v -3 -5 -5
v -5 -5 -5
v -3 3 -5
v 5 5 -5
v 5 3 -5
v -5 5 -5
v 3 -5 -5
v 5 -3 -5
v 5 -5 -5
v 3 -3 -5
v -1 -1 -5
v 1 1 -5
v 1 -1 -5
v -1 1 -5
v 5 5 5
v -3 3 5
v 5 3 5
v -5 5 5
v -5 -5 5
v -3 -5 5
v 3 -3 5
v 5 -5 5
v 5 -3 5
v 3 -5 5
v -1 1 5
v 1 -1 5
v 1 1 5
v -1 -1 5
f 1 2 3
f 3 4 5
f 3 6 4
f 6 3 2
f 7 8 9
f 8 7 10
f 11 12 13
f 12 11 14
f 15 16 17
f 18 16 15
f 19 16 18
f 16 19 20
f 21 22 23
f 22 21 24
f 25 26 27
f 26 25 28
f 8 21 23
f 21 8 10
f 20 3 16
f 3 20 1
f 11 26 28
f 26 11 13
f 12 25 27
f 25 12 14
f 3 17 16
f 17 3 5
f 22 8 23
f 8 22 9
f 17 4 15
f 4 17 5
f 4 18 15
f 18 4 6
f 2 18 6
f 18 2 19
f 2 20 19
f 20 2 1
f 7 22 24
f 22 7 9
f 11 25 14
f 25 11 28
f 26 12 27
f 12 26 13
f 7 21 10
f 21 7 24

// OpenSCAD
// Generated by SolidPython 1.1.3 on 2025-02-20 04:04:11
$fn=50;


intersection() {
	translate(v = [-5.0000000000, -5.0000000000, -5.0000000000]) {
		linear_extrude(height = 10) {
			polygon(points = [[0, 0], [10, 0], [10, 2.0000000000], [2.0000000000, 2.0000000000], [2.0000000000, 4.0000000000], [7.5000000000, 4.0000000000], [7.5000000000, 6.0000000000], [2.0000000000, 6.0000000000], [2.0000000000, 8.0000000000], [10, 8.0000000000], [10, 10], [0, 10]]);
		}
	}
	rotate(a = -90, v = [0, 0, 1]) {
		translate(v = [-5.0000000000, -5.0000000000, -5.0000000000]) {
			linear_extrude(height = 10) {
				polygon(points = [[0, 0], [10, 0], [10, 2.0000000000], [2.0000000000, 2.0000000000], [2.0000000000, 4.0000000000], [7.5000000000, 4.0000000000], [7.5000000000, 6.0000000000], [2.0000000000, 6.0000000000], [2.0000000000, 8.0000000000], [10, 8.0000000000], [10, 10], [0, 10]]);
			}
		}
	}
}
/***********************************************
*********      SolidPython code:      **********
************************************************
 
from solid import *
from solid.utils import *

import math
import matplotlib.pyplot as plt
import subprocess
import os

class Hole:
    def __init__(self, x, y, radius):
        """
        Hole defined by:
        :param x: x dimension for center point of the circle as a ratio of letter height
        :param y: y dimension for center point of the circle as a ratio of letter height
        :param radius: radius of circle as a ratio of letter height
        """
        self.x = x
        self.y = y
        self.radius = radius

class Letter3D:
    def __init__(self, name, outer_shape_points, height, holes=None):
        """
        3D Letter defined by:
        :param name: name of letter
        :param outer_shape_points: points defining the outer shape of the letter
        :param heigh: size of cube that letter fits inside
        :param holes: list of Holes
        """
        self.name = name
        self.outer_shape_points = outer_shape_points
        self.holes = holes if holes is None else []
        self.height = height


    def generate(self):
        shape = polygon(points=self.outer_shape_points)

        if self.holes:
            for hole in self.holes:
                circle_hole = circle(r=hole.radius*self.height)
                positioned_hole = translate([hole.x*self.height, hole.y*self.height])(circle_hole)
                shape = difference()(shape, positioned_hole)
        
        shape_3d = linear_extrude(height=self.height)(shape)
        shape_3d = translate([-self.height/2, -self.height/2, -self.height/2])(shape_3d)
        return shape_3d
    
    def render(self):
        scad_render_to_file(self.shape, f"output/{self.name}.scad", file_header='$fn=50;')
        subprocess.run(["C:\\Program Files\\OpenSCAD\\openscad.exe", "-o", f"output\\{self.name}.stl", f"output\\{self.name}.scad"])


class TwoLetter3D:
    def __init__(self, height, letterA, letterA_face, letterB=None, letterB_face=None):
        self.height = height
        self.letterA = letterA
        self.letterB = letterB
        self.letterA_face = letterA_face
        self.letterB_face = letterB_face

    def call_letter_generation(self, letter):
        letter = letter.upper()
        function_name = f"letter_{letter}"
        func = globals().get(function_name)
        if func is None:
            raise ValueError(f"No letter generation function defined for letter '{letter}'.")
        else:
            print(func)
        return func(self.height)
    
    def rotate_object(self, face, shape):
        face = face.lower()
        if face == "z":
            return shape
        if face == "x":
            return rotate(a=90, v=[0,1,0])(shape)
        if face == "y":
            return rotate(a=-90, v=[0,0,1])(shape)
        else:
            raise ValueError("Face must be one of 'x', 'y', or 'z'.")

    def render(self):
        if self.letterA:
            letterA3D = self.call_letter_generation(self.letterA)
            letterA3D = self.rotate_object(self.letterA_face, letterA3D)

        if self.letterB:
            letterB3D = self.call_letter_generation(self.letterB)
            letterB3D = self.rotate_object(self.letterB_face, letterB3D)
            combined = intersection()(letterA3D, letterB3D)
            file_name = self.letterA + self.letterB
            scad_render_to_file(combined, f"output/{file_name}.scad", file_header='$fn=50;')
            subprocess.run(["C:\\Program Files\\OpenSCAD\\openscad.exe", "-o", f"output\\{file_name}.stl", f"output\\{file_name}.scad"])
            return
        else:
            file_name = self.letterA
            scad_render_to_file(letterA3D, f"output/{file_name}.scad", file_header='$fn=50;')
            subprocess.run(["C:\\Program Files\\OpenSCAD\\openscad.exe", "-o", f"output\\{file_name}.stl", f"output\\{file_name}.scad"])
    
                

def arc_points(radius, start_angle, end_angle, center=[0,0], num_points=50):
    angles = [start_angle + i * (end_angle - start_angle) / (num_points - 1)
              for i in range(num_points)]
    points = [
        (center[0] + radius * math.cos(math.radians(angle)),
         center[1] + radius * math.sin(math.radians(angle)))
        for angle in angles
    ]
    return points

def letter_A(h):
    shape_points = [(0,0), (h/2, h), (h, 0), (5/6*h, 0), (2/3*h, 1/3*h), (1/3*h, 1/3*h), (h/6, 0)]
    holes = [Hole(1/2, 7/12, 1/6)]
    A = Letter3D("A", shape_points, h, holes)
    return A.generate()

def letter_B(h):
    top_arc_points = arc_points(h/4, 90, -90, center=[3/4*h, 3/4*h])
    bottom_arc_points = arc_points(h/4, 90, -90, center=[3/4*h, h/4])
    other_points = [(0,0),(0,h)]

    shape_points = top_arc_points + bottom_arc_points + other_points
    holes = [Hole(1/2, 3/4, 1/6), Hole(1/2, 1/4, 1/6)]
    B = Letter3D("B", shape_points, h, holes)
    return B.generate()

def letter_C(h):
    outer_arc_points = arc_points(h/2, 30, 330, center=[h/2,h/2])
    inner_arc_points = arc_points(h/4, 30, 330, center=[h/2,h/2])[::-1]
    shape_points = outer_arc_points + inner_arc_points
    # print(shape_points)
    C = Letter3D("C", shape_points, h)
    return C.generate()


def letter_D(h):
    outer_arc_points = arc_points(h/2, 90, -90, center= [h/2, h/2])
    shape_points = outer_arc_points + [(0,0), (0, h)]
    holes = [Hole(1/2, 1/2, 1/6)]
    D = Letter3D("D", shape_points, h, holes)
    return D.generate()

def letter_E(h):
    points = [(0,0), (h,0), (h,h/5), (h/5,h/5), (h/5,2/5*h), (3/4*h,2/5*h), (3/4*h,3/5*h), (h/5,3/5*h), (h/5,4/5*h), (h,4/5*h), (h,h), (0,h)]
    E = Letter3D("E", points, h)
    return E.generate()

def letter_F(h):
    points = [(0,0), (h/5,0), (h/5,2/5*h), (3/4*h,2/5*h), (3/4*h,3/5*h), (h/5,3/5*h), (h/5,4/5*h), (h,4/5*h), (h,h), (0,h)]
    F = Letter3D("F", points, h)
    return F.generate()

if __name__ == "__main__":
    os.makedirs("output", exist_ok=True)
    # Generate all combos
    letters = [chr(x) for x in range(ord('A'), ord('F') + 1)]
    for letter in letters:
        for other_letter in letters:
            shape = TwoLetter3D(10, letter, "z", other_letter, "y")
            shape.render()
 
 
************************************************/
